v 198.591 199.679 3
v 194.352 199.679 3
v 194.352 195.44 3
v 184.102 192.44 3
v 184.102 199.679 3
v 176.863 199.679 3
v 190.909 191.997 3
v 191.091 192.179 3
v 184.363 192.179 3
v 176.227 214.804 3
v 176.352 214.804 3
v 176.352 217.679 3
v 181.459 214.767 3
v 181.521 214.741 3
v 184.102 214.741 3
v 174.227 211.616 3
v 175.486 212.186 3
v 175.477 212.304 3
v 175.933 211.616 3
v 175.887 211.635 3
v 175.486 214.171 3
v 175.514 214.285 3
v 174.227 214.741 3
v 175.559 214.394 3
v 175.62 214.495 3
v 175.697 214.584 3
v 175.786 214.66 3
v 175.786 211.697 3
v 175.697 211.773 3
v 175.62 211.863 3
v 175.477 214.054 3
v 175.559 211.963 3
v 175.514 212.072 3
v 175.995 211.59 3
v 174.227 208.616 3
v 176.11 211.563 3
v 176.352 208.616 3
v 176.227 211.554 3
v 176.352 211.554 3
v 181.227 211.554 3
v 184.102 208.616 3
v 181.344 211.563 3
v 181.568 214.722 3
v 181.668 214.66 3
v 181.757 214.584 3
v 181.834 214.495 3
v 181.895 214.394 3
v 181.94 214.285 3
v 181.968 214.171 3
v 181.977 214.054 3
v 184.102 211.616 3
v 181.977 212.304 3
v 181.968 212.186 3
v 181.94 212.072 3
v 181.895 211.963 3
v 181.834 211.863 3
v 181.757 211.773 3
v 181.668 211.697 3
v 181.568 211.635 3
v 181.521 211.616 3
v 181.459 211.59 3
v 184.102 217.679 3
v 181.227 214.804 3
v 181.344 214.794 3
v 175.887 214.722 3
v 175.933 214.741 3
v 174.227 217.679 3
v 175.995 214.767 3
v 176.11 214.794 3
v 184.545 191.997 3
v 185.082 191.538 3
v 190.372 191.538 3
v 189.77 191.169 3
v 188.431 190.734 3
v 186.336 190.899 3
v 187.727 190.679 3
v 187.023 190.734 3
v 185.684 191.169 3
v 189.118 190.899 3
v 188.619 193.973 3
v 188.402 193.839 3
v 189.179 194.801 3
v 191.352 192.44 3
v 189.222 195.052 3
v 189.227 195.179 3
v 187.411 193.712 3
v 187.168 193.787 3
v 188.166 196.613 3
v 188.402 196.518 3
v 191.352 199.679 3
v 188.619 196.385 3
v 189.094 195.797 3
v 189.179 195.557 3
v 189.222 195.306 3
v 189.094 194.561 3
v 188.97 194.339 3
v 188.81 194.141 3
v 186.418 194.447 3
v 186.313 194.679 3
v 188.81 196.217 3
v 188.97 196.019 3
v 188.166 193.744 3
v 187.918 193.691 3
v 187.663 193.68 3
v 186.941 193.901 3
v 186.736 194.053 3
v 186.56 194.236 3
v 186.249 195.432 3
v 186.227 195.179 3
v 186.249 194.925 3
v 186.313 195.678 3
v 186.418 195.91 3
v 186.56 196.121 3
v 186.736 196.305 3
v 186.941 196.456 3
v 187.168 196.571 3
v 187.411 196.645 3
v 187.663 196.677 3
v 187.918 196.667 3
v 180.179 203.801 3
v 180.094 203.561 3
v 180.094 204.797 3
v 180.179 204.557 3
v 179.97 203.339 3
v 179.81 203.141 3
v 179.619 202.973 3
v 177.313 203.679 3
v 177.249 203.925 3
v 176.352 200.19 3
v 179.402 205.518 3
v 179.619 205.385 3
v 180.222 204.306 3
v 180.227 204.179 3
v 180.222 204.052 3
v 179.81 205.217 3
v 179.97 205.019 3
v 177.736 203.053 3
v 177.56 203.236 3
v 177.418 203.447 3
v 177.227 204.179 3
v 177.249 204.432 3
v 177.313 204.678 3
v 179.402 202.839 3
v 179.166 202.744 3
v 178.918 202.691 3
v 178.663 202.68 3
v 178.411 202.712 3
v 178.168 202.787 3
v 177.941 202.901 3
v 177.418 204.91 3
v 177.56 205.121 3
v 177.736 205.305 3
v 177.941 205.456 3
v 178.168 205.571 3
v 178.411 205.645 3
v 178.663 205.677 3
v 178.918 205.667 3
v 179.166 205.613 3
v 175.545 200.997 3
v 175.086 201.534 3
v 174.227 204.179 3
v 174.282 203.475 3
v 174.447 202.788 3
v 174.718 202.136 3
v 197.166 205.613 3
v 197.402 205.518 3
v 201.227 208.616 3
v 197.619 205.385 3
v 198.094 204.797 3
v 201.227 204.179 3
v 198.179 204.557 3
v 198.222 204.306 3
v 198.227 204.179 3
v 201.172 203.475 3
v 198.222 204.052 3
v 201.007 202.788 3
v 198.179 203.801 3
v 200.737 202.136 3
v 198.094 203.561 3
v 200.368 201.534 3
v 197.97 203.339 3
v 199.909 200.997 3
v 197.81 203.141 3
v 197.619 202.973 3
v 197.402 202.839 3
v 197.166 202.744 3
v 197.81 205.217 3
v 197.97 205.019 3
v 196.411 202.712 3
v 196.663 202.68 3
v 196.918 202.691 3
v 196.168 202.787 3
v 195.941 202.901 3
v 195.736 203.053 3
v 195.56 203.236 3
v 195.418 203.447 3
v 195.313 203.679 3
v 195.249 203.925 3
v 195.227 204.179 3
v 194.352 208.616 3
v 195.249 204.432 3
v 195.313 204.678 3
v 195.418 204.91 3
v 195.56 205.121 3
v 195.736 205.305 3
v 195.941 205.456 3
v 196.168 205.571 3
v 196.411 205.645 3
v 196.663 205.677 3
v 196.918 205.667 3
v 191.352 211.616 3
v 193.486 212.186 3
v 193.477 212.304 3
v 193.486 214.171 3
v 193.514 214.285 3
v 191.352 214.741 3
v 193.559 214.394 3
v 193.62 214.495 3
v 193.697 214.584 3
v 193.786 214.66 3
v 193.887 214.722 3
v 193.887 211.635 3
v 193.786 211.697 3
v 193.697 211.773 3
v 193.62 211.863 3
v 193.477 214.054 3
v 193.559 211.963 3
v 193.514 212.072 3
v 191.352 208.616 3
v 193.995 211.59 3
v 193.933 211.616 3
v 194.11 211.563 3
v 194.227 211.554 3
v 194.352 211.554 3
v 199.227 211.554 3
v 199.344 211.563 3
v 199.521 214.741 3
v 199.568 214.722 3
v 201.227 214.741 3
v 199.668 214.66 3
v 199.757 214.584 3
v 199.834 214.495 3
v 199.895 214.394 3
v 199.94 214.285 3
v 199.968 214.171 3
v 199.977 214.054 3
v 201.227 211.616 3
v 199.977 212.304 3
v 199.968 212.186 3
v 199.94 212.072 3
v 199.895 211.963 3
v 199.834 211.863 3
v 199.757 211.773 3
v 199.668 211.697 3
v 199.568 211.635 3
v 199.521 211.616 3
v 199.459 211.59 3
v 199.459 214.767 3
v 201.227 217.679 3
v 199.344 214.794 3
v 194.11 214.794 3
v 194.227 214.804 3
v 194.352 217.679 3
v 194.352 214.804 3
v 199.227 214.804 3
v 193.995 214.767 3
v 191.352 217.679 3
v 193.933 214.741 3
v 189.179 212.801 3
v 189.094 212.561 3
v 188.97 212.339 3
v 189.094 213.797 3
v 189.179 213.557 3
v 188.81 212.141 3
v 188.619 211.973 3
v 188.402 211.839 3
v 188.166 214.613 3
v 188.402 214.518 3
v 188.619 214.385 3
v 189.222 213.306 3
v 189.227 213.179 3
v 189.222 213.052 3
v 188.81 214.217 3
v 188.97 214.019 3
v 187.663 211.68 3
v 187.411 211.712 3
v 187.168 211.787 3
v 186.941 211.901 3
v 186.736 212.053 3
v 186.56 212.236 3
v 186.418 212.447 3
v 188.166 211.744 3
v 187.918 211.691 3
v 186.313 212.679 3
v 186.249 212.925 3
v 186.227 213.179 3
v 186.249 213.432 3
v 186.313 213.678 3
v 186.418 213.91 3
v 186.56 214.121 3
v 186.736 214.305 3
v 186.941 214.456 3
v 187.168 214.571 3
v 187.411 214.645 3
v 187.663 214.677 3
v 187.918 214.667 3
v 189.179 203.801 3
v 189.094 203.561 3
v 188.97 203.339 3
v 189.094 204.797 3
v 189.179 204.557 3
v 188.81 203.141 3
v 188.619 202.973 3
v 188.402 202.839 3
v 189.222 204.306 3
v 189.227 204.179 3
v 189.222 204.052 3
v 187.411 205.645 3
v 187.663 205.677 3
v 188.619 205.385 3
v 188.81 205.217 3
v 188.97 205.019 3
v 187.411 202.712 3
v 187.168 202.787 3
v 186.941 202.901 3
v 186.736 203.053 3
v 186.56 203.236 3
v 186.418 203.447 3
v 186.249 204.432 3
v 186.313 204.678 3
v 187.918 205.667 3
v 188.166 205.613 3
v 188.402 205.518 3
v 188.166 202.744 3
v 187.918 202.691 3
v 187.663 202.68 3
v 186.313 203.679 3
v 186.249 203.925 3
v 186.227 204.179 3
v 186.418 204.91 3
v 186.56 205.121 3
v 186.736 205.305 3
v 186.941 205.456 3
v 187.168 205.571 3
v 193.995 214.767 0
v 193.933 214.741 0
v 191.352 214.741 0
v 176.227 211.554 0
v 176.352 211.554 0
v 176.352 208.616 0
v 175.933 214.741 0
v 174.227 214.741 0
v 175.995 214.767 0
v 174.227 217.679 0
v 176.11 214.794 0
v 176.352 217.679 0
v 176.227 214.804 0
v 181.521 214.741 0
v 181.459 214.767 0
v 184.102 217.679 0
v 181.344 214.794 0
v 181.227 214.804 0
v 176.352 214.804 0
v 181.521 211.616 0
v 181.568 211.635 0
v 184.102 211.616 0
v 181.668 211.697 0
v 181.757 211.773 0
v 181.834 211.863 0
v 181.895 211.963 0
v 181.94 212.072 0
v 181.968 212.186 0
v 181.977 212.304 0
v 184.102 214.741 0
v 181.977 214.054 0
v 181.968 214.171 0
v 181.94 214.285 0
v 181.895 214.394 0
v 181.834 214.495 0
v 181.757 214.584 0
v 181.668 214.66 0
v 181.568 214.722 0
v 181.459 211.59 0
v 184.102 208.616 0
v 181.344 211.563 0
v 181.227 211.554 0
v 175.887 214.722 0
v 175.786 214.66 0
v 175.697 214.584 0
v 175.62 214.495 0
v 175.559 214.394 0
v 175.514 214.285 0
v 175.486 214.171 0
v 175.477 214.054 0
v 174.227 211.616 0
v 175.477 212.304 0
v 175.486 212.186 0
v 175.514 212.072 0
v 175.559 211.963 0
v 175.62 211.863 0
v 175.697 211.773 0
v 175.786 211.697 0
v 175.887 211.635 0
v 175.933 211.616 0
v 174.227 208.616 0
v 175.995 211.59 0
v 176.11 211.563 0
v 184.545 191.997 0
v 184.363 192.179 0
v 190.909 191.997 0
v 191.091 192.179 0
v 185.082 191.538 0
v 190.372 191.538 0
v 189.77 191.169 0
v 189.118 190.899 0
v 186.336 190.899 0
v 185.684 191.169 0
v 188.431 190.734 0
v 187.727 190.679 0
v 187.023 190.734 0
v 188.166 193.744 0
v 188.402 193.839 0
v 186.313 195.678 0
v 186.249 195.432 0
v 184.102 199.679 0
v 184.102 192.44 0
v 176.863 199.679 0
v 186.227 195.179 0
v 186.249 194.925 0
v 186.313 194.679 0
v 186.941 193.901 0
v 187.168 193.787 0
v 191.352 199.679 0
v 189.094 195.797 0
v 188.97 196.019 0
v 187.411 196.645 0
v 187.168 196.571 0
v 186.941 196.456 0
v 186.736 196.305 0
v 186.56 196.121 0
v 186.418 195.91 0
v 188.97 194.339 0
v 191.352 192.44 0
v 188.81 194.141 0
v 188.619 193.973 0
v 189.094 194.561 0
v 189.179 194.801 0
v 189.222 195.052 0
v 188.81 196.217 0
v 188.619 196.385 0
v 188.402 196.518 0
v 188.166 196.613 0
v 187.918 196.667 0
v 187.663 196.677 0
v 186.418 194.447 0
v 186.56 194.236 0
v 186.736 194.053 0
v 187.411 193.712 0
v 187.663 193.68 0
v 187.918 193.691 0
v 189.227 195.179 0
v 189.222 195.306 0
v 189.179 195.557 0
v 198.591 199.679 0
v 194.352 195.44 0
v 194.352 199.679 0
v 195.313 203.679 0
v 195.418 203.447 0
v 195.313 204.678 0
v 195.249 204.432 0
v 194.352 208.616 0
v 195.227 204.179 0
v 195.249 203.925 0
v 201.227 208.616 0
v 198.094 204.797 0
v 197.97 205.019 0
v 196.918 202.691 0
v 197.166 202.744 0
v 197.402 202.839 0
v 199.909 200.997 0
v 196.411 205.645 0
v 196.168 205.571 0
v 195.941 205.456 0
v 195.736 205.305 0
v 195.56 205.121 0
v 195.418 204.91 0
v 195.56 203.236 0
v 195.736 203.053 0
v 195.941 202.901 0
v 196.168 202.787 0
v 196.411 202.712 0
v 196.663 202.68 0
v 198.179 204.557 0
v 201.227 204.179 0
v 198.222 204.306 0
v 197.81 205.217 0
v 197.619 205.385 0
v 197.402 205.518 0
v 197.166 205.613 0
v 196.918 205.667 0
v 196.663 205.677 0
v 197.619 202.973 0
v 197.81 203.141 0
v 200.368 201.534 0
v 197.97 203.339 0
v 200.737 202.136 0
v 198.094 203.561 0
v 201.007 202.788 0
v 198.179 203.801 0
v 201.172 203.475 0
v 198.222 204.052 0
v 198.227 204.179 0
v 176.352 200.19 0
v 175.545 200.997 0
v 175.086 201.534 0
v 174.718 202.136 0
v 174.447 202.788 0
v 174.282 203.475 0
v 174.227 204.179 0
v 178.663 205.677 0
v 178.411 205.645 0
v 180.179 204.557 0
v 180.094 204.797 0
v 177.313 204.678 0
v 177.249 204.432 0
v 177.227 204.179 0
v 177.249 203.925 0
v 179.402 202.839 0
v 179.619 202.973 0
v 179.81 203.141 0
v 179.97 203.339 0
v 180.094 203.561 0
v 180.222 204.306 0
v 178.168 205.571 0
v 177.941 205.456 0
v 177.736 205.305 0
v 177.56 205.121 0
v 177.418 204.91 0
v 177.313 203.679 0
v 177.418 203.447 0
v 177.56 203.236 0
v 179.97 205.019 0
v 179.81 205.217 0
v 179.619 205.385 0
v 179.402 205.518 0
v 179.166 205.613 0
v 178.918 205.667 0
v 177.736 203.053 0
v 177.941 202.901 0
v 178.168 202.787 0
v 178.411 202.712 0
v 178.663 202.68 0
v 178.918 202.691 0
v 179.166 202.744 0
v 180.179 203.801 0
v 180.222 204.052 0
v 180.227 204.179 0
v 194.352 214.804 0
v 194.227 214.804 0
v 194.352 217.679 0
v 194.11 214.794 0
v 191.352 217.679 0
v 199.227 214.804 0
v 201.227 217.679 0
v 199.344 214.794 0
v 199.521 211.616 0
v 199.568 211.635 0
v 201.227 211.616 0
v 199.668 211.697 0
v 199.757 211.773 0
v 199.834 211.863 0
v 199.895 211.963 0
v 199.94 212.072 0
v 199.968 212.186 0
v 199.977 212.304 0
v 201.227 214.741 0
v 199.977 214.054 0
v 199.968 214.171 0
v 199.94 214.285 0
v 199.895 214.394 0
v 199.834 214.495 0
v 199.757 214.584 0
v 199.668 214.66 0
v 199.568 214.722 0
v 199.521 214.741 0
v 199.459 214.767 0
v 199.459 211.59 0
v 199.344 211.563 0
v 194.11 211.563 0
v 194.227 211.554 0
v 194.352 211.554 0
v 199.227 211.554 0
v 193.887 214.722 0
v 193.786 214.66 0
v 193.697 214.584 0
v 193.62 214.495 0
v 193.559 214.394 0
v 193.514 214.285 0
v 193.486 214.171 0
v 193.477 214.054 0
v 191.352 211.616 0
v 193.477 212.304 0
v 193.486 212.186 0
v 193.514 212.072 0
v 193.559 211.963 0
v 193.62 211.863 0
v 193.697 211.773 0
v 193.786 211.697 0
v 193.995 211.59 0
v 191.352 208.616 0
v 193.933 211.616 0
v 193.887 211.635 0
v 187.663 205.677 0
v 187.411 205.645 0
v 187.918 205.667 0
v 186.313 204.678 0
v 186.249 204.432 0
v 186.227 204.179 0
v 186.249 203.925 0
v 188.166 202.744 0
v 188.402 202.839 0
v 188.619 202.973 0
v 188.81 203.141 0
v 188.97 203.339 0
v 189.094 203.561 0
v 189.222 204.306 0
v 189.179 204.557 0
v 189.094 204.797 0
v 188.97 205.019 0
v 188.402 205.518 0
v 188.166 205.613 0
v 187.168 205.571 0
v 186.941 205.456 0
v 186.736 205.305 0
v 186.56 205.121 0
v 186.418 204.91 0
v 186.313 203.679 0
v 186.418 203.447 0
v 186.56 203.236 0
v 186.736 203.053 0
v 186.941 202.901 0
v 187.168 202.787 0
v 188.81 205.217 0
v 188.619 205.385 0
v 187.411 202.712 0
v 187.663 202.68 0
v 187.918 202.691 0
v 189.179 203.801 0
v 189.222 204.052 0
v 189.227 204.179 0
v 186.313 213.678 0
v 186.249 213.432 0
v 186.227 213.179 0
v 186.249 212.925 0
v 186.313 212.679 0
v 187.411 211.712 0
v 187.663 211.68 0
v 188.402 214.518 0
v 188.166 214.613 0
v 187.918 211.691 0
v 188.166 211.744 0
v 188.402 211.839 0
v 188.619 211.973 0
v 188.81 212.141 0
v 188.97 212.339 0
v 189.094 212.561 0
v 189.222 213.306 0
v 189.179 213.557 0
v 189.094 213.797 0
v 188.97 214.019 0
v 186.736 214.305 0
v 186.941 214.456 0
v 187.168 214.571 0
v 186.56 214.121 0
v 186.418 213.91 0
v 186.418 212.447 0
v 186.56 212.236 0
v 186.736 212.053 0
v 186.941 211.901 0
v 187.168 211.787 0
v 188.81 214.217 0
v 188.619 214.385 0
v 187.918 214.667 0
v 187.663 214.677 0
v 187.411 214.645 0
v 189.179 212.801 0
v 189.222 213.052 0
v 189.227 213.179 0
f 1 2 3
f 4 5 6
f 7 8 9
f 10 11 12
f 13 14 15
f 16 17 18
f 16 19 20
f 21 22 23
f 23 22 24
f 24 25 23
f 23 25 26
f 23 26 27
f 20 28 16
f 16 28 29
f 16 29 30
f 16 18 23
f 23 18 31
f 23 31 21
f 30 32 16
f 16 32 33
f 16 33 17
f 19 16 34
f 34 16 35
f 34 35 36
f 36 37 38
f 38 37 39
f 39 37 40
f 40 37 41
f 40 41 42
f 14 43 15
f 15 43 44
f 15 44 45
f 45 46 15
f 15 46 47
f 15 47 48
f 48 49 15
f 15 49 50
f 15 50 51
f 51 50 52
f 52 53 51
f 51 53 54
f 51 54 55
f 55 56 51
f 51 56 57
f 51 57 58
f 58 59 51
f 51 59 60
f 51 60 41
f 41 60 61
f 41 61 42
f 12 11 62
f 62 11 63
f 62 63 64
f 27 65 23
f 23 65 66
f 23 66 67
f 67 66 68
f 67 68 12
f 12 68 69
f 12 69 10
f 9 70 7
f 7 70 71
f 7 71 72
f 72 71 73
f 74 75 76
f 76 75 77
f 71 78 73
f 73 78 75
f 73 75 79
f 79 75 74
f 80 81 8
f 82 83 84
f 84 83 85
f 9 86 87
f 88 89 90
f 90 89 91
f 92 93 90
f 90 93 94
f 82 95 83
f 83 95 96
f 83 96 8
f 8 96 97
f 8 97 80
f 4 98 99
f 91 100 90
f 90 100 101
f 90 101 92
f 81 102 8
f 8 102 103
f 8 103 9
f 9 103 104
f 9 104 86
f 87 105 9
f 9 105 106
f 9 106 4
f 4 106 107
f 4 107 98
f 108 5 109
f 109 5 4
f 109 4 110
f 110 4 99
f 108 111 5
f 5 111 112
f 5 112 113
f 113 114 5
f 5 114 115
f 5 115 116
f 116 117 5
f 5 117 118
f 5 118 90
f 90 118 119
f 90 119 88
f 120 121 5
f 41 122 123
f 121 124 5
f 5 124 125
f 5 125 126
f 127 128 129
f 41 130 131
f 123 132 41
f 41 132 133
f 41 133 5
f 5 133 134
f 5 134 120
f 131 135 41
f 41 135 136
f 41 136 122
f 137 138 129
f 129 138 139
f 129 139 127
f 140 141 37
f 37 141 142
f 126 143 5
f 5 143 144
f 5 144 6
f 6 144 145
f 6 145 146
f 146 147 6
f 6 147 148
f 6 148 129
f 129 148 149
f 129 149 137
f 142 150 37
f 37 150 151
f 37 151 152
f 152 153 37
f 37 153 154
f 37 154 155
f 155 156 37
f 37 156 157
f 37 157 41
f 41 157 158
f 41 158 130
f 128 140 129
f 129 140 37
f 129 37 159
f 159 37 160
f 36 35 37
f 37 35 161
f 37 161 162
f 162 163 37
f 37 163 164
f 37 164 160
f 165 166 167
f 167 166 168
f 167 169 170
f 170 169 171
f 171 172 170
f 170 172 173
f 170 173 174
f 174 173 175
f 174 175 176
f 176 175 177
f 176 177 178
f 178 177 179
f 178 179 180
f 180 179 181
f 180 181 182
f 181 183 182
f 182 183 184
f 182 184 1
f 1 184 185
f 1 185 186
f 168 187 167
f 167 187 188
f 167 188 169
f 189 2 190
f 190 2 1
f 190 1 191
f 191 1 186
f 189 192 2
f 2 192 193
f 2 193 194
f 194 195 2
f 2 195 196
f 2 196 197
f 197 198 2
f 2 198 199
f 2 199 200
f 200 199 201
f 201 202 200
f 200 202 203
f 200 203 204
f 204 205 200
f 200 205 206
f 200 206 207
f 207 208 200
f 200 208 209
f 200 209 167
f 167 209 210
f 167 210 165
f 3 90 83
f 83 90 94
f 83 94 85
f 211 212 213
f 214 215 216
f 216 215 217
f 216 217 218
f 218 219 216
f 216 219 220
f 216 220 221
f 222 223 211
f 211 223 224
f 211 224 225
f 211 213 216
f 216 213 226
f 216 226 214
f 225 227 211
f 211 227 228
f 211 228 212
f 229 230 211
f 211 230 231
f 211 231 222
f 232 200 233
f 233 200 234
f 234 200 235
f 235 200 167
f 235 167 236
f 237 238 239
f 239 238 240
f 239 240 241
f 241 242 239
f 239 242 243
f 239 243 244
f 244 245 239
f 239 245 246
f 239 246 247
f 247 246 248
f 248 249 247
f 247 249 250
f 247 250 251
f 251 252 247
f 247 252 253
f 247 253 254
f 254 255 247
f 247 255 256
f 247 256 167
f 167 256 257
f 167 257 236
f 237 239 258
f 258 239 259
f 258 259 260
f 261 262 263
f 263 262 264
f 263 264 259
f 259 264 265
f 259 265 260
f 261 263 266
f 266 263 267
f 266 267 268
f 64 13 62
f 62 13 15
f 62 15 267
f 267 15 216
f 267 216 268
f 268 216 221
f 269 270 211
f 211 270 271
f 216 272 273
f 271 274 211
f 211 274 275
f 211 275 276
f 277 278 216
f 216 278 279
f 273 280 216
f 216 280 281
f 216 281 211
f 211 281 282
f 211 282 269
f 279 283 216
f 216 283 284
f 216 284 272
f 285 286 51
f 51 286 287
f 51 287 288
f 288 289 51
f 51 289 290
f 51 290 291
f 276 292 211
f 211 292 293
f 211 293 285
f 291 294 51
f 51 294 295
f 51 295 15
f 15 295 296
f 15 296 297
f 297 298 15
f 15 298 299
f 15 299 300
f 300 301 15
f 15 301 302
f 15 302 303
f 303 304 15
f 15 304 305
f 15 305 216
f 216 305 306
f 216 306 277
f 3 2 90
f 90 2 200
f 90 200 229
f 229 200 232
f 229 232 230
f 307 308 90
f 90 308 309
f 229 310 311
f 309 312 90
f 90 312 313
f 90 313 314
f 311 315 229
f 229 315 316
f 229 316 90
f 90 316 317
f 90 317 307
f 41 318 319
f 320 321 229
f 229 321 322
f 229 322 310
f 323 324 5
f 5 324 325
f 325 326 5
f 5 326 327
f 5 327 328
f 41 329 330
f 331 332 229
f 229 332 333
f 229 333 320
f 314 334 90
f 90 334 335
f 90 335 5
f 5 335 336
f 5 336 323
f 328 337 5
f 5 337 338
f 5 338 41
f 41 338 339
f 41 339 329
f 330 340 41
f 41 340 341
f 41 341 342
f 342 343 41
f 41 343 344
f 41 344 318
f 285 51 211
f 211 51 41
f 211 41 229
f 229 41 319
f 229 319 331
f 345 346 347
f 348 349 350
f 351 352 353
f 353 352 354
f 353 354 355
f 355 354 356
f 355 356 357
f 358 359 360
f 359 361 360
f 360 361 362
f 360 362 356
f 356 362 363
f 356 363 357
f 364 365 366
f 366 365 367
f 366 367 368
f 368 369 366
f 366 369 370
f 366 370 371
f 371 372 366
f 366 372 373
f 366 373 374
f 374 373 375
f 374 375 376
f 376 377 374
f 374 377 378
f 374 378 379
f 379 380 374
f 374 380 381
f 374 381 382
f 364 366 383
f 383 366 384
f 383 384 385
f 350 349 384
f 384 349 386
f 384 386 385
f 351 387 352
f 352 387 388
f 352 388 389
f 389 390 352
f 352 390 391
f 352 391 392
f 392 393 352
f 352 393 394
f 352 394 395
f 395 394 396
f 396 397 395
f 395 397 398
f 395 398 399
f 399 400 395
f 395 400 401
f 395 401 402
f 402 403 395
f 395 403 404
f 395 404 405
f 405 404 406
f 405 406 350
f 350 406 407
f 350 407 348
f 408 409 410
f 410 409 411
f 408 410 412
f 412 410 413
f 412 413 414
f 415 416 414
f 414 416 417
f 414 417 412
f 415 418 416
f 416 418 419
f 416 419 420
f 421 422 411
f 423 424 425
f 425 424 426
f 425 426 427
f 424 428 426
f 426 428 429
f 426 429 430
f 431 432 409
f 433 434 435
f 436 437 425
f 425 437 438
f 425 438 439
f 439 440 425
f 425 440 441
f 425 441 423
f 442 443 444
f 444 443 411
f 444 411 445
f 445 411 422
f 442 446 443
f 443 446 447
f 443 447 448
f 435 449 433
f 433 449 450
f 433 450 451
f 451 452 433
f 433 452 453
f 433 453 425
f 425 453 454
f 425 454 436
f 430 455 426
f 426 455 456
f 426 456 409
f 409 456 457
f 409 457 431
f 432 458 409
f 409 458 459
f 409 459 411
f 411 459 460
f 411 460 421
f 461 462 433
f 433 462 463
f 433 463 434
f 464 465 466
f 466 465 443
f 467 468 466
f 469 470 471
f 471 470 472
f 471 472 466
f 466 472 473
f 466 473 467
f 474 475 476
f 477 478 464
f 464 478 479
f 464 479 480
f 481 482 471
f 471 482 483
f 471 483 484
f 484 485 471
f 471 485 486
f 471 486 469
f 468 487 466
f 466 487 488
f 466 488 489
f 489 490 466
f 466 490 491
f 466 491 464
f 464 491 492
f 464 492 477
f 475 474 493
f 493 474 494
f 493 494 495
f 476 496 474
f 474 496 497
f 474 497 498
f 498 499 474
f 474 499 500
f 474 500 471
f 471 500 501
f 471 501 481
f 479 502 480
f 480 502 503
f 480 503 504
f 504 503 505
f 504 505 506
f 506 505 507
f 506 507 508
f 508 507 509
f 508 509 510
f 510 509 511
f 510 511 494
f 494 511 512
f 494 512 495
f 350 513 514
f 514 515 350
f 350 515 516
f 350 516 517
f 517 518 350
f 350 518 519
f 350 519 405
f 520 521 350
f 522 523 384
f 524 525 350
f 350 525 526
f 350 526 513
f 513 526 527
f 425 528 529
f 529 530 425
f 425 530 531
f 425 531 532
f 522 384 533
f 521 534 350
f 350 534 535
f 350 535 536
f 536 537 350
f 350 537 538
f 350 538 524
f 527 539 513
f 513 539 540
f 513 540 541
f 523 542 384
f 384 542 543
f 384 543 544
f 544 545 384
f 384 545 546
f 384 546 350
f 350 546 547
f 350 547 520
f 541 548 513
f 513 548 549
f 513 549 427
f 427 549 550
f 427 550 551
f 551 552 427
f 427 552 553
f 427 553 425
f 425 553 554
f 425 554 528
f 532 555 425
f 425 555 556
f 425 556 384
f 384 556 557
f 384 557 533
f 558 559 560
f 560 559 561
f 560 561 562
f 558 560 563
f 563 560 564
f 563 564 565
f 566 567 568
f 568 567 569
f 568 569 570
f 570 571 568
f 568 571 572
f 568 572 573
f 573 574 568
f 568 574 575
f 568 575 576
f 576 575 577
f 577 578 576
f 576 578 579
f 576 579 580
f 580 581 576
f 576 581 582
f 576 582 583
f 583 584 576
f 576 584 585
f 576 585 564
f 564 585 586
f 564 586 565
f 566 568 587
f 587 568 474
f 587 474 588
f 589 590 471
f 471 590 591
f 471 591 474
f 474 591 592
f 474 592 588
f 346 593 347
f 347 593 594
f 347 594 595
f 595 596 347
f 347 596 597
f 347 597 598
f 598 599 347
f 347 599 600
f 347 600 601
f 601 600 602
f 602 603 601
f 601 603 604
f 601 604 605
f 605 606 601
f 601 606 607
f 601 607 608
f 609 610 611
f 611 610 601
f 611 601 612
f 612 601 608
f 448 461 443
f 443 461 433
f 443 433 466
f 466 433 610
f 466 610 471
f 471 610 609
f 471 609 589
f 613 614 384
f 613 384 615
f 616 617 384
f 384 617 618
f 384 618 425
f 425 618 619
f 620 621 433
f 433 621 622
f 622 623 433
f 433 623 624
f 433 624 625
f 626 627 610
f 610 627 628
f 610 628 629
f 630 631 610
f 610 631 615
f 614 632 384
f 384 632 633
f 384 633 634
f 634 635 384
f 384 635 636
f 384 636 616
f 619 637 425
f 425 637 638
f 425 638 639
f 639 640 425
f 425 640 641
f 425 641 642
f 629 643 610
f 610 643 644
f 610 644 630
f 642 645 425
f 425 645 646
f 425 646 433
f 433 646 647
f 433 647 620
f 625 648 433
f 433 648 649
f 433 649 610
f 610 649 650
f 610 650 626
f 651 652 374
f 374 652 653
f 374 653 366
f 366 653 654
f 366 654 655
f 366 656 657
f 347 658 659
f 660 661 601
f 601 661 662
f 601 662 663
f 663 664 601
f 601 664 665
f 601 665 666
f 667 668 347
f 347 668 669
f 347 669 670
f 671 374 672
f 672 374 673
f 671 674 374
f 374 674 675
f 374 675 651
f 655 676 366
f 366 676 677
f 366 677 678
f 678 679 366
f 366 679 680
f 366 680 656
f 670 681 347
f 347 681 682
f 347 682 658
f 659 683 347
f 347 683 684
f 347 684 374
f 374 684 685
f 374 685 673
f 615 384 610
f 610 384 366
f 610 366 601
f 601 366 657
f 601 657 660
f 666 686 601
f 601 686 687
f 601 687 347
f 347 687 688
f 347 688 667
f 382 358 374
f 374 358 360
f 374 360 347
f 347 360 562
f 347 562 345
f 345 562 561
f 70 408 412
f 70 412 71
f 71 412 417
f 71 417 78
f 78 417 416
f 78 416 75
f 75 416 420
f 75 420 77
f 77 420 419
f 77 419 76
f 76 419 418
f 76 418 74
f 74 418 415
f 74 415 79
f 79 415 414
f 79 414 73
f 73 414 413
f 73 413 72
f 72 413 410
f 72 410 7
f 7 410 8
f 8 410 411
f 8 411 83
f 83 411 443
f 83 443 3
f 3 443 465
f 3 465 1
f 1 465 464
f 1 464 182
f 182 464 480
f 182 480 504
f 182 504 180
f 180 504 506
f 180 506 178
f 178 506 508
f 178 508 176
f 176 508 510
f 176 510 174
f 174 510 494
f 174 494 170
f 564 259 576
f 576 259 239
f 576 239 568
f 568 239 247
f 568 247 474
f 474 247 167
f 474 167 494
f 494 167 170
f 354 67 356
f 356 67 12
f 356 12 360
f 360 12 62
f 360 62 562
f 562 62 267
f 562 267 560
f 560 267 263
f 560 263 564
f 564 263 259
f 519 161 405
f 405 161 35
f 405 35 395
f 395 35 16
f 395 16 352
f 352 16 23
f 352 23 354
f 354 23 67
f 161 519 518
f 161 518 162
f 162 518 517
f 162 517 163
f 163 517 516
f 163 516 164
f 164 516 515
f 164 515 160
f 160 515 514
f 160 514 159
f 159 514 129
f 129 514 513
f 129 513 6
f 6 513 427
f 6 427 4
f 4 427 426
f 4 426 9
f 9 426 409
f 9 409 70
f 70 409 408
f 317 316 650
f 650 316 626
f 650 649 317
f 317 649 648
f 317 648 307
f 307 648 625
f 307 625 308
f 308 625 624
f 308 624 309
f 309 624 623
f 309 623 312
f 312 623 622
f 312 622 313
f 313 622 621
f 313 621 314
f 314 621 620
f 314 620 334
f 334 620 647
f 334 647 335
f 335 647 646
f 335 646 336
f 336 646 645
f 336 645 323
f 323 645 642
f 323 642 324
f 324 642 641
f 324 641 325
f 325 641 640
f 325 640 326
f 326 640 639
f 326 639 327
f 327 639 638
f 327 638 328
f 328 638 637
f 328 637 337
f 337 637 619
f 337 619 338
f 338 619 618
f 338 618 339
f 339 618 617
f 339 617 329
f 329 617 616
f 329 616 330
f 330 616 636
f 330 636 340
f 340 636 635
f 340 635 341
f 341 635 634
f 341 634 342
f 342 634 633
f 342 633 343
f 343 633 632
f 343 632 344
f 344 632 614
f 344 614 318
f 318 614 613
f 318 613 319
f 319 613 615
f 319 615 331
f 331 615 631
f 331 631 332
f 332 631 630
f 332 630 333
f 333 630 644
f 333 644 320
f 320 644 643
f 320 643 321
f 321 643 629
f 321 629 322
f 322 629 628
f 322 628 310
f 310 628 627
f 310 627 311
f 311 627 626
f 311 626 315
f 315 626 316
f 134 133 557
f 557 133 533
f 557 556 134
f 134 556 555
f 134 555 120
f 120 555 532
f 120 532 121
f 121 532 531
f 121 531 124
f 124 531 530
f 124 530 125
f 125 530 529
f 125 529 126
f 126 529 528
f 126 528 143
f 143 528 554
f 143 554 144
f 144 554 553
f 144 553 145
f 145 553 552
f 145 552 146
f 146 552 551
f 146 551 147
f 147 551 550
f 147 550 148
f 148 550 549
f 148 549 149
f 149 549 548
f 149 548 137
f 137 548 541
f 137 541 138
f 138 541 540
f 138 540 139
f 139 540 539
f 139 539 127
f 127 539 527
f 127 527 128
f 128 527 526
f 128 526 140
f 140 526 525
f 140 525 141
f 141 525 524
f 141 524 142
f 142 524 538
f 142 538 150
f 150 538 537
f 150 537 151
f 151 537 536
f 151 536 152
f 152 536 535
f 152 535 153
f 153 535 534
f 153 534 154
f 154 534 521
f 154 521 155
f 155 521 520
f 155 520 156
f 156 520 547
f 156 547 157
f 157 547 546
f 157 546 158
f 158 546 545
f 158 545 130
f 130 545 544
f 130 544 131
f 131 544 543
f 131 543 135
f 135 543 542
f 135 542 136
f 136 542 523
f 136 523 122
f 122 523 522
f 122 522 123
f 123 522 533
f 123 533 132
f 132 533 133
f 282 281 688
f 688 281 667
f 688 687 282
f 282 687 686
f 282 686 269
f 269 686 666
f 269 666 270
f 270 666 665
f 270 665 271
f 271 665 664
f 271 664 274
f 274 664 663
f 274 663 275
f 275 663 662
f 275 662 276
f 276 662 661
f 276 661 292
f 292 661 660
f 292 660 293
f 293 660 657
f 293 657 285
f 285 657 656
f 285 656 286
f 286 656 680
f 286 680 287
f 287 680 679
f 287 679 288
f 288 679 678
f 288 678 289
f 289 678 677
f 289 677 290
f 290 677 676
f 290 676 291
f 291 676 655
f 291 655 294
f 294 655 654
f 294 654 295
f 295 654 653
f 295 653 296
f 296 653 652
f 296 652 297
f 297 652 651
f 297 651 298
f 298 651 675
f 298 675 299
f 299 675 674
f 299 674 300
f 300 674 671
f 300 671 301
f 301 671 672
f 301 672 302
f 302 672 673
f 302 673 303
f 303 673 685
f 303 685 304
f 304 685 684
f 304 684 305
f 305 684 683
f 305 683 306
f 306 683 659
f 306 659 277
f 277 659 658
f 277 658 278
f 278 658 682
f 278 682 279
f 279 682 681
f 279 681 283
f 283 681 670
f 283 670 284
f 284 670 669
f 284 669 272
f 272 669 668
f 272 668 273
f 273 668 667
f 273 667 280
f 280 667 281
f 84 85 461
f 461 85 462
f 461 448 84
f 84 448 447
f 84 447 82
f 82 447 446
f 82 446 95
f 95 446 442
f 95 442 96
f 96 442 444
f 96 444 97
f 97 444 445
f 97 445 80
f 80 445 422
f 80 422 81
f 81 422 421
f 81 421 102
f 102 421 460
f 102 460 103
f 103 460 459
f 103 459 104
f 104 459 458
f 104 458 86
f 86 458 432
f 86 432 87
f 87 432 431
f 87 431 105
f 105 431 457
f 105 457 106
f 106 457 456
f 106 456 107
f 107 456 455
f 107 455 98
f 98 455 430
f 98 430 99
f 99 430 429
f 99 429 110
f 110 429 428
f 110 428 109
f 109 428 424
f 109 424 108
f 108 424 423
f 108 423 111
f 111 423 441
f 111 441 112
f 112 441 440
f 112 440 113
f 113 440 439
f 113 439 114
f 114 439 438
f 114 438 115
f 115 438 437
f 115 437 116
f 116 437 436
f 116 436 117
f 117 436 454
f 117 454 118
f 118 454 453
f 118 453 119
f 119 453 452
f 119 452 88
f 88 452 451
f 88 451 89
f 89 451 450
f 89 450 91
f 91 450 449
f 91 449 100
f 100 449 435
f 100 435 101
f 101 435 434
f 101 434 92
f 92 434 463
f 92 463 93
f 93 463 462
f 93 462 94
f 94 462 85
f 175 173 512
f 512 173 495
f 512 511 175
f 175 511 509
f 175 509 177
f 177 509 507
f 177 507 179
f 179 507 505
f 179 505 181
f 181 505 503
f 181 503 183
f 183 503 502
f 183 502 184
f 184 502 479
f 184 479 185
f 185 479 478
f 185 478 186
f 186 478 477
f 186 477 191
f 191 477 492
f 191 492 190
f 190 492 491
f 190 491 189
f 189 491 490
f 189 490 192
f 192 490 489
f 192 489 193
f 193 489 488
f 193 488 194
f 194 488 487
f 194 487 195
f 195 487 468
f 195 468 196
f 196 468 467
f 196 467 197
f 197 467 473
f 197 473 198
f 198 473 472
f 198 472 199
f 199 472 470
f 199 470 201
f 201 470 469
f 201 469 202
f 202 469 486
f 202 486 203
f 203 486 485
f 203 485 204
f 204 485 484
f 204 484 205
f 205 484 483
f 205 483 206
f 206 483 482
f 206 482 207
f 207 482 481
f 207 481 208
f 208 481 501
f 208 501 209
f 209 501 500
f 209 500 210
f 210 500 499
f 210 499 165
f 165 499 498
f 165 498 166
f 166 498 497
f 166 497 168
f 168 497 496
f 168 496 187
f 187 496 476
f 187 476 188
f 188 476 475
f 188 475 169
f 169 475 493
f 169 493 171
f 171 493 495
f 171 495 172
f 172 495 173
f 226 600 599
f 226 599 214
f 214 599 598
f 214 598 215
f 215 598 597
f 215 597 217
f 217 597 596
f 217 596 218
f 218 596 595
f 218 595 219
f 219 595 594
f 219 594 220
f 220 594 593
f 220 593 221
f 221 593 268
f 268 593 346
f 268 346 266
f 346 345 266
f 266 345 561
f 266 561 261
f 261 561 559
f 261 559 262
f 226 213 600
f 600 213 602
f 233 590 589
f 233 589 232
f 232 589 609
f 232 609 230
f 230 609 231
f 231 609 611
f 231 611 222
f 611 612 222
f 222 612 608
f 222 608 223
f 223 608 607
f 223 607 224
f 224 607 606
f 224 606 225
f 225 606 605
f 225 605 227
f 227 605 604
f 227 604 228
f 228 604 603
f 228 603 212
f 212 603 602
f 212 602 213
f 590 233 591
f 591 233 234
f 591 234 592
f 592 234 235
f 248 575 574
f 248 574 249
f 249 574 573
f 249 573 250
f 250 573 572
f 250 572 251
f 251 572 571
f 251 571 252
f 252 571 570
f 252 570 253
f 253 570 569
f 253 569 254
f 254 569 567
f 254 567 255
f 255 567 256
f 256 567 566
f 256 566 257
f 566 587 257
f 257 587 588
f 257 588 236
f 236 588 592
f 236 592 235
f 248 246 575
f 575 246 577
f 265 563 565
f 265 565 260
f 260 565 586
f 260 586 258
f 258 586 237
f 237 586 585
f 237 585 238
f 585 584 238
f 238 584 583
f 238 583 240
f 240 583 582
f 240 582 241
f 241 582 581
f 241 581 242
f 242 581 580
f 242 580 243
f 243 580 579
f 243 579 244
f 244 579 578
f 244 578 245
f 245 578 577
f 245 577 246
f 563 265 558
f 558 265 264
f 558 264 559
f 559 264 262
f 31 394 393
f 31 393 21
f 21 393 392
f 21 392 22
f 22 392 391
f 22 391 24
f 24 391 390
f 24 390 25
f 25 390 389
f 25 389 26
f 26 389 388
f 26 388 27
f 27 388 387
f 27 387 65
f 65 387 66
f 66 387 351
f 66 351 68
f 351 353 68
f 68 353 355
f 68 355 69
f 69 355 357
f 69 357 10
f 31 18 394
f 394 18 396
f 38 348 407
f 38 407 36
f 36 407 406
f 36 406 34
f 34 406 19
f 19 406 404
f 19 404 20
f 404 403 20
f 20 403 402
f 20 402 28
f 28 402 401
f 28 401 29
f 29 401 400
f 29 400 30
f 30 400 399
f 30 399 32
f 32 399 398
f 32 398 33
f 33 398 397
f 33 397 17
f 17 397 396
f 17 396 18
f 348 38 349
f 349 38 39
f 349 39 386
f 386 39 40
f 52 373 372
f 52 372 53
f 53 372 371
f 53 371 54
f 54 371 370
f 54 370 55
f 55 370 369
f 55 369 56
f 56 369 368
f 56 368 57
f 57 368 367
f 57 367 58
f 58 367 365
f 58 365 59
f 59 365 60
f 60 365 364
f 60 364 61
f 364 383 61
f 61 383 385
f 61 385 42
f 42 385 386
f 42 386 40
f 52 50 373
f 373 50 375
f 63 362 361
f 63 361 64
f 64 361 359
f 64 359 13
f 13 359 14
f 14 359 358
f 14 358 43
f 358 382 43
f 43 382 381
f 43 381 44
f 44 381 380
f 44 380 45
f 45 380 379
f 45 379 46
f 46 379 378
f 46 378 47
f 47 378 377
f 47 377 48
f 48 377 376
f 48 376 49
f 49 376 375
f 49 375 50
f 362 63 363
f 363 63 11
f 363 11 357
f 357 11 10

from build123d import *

# Parameters (mm, degrees)
MODEL_R                 = 1.5
SALIENTE_EXTRUIR1_DEPTH = 3


with BuildPart() as part:
    # Model → Saliente-Extruir1 (new body)
    with BuildSketch(Plane.XY):
        with BuildLine():
            Line((174.227054575, 213.178720063), (174.227054575, 204.178720063))
            ThreePointArc((174.227054575, 204.178720063), (174.569596678, 202.456644617), (175.545074059, 200.996739548))
            Line((175.545074059, 200.996739548), (184.545074059, 191.996739548))
            ThreePointArc((184.545074059, 191.996739548), (187.727054575, 190.678720063), (190.90903509, 191.996739548))
            Line((190.90903509, 191.996739548), (199.90903509, 200.996739548))
            ThreePointArc((199.90903509, 200.996739548), (200.884512471, 202.456644617), (201.227054575, 204.178720063))
            Line((201.227054575, 204.178720063), (201.227054575, 217.678720063))
            Line((201.227054575, 217.678720063), (174.227054575, 217.678720063))
            Line((174.227054575, 217.678720063), (174.227054575, 213.178720063))
        make_face()
        with Locations((187.727054575, 204.178720063)):
            Circle(MODEL_R, mode=Mode.SUBTRACT)
        with Locations((178.727054575, 204.178720063)):
            Circle(MODEL_R, mode=Mode.SUBTRACT)
        with Locations((187.727054575, 213.178720063)):
            Circle(MODEL_R, mode=Mode.SUBTRACT)
        with Locations((187.727054575, 195.178720063)):
            Circle(MODEL_R, mode=Mode.SUBTRACT)
        with Locations((196.727054575, 204.178720063)):
            Circle(MODEL_R, mode=Mode.SUBTRACT)
        with BuildLine():
            Line((193.477054575, 214.053720063), (193.477054575, 212.303720063))
            ThreePointArc((193.477054575, 212.303720063), (193.696724489, 211.773389977), (194.227054575, 211.553720063))
            Line((194.227054575, 211.553720063), (199.227054575, 211.553720063))
            ThreePointArc((199.227054575, 211.553720063), (199.757384661, 211.773389977), (199.977054575, 212.303720063))
            Line((199.977054575, 212.303720063), (199.977054575, 214.053720063))
            ThreePointArc((199.977054575, 214.053720063), (199.757384661, 214.584050149), (199.227054575, 214.803720063))
            Line((199.227054575, 214.803720063), (194.227054575, 214.803720063))
            ThreePointArc((194.227054575, 214.803720063), (193.696724489, 214.584050149), (193.477054575, 214.053720063))
        make_face(mode=Mode.SUBTRACT)
        with BuildLine():
            Line((175.477054575, 214.053720063), (175.477054575, 212.303720063))
            ThreePointArc((175.477054575, 212.303720063), (175.696724489, 211.773389977), (176.227054575, 211.553720063))
            Line((176.227054575, 211.553720063), (181.227054575, 211.553720063))
            ThreePointArc((181.227054575, 211.553720063), (181.757384661, 211.773389977), (181.977054575, 212.303720063))
            Line((181.977054575, 212.303720063), (181.977054575, 214.053720063))
            ThreePointArc((181.977054575, 214.053720063), (181.757384661, 214.584050149), (181.227054575, 214.803720063))
            Line((181.227054575, 214.803720063), (176.227054575, 214.803720063))
            ThreePointArc((176.227054575, 214.803720063), (175.696724489, 214.584050149), (175.477054575, 214.053720063))
        make_face(mode=Mode.SUBTRACT)
    extrude(amount=SALIENTE_EXTRUIR1_DEPTH)


solid = part.part
